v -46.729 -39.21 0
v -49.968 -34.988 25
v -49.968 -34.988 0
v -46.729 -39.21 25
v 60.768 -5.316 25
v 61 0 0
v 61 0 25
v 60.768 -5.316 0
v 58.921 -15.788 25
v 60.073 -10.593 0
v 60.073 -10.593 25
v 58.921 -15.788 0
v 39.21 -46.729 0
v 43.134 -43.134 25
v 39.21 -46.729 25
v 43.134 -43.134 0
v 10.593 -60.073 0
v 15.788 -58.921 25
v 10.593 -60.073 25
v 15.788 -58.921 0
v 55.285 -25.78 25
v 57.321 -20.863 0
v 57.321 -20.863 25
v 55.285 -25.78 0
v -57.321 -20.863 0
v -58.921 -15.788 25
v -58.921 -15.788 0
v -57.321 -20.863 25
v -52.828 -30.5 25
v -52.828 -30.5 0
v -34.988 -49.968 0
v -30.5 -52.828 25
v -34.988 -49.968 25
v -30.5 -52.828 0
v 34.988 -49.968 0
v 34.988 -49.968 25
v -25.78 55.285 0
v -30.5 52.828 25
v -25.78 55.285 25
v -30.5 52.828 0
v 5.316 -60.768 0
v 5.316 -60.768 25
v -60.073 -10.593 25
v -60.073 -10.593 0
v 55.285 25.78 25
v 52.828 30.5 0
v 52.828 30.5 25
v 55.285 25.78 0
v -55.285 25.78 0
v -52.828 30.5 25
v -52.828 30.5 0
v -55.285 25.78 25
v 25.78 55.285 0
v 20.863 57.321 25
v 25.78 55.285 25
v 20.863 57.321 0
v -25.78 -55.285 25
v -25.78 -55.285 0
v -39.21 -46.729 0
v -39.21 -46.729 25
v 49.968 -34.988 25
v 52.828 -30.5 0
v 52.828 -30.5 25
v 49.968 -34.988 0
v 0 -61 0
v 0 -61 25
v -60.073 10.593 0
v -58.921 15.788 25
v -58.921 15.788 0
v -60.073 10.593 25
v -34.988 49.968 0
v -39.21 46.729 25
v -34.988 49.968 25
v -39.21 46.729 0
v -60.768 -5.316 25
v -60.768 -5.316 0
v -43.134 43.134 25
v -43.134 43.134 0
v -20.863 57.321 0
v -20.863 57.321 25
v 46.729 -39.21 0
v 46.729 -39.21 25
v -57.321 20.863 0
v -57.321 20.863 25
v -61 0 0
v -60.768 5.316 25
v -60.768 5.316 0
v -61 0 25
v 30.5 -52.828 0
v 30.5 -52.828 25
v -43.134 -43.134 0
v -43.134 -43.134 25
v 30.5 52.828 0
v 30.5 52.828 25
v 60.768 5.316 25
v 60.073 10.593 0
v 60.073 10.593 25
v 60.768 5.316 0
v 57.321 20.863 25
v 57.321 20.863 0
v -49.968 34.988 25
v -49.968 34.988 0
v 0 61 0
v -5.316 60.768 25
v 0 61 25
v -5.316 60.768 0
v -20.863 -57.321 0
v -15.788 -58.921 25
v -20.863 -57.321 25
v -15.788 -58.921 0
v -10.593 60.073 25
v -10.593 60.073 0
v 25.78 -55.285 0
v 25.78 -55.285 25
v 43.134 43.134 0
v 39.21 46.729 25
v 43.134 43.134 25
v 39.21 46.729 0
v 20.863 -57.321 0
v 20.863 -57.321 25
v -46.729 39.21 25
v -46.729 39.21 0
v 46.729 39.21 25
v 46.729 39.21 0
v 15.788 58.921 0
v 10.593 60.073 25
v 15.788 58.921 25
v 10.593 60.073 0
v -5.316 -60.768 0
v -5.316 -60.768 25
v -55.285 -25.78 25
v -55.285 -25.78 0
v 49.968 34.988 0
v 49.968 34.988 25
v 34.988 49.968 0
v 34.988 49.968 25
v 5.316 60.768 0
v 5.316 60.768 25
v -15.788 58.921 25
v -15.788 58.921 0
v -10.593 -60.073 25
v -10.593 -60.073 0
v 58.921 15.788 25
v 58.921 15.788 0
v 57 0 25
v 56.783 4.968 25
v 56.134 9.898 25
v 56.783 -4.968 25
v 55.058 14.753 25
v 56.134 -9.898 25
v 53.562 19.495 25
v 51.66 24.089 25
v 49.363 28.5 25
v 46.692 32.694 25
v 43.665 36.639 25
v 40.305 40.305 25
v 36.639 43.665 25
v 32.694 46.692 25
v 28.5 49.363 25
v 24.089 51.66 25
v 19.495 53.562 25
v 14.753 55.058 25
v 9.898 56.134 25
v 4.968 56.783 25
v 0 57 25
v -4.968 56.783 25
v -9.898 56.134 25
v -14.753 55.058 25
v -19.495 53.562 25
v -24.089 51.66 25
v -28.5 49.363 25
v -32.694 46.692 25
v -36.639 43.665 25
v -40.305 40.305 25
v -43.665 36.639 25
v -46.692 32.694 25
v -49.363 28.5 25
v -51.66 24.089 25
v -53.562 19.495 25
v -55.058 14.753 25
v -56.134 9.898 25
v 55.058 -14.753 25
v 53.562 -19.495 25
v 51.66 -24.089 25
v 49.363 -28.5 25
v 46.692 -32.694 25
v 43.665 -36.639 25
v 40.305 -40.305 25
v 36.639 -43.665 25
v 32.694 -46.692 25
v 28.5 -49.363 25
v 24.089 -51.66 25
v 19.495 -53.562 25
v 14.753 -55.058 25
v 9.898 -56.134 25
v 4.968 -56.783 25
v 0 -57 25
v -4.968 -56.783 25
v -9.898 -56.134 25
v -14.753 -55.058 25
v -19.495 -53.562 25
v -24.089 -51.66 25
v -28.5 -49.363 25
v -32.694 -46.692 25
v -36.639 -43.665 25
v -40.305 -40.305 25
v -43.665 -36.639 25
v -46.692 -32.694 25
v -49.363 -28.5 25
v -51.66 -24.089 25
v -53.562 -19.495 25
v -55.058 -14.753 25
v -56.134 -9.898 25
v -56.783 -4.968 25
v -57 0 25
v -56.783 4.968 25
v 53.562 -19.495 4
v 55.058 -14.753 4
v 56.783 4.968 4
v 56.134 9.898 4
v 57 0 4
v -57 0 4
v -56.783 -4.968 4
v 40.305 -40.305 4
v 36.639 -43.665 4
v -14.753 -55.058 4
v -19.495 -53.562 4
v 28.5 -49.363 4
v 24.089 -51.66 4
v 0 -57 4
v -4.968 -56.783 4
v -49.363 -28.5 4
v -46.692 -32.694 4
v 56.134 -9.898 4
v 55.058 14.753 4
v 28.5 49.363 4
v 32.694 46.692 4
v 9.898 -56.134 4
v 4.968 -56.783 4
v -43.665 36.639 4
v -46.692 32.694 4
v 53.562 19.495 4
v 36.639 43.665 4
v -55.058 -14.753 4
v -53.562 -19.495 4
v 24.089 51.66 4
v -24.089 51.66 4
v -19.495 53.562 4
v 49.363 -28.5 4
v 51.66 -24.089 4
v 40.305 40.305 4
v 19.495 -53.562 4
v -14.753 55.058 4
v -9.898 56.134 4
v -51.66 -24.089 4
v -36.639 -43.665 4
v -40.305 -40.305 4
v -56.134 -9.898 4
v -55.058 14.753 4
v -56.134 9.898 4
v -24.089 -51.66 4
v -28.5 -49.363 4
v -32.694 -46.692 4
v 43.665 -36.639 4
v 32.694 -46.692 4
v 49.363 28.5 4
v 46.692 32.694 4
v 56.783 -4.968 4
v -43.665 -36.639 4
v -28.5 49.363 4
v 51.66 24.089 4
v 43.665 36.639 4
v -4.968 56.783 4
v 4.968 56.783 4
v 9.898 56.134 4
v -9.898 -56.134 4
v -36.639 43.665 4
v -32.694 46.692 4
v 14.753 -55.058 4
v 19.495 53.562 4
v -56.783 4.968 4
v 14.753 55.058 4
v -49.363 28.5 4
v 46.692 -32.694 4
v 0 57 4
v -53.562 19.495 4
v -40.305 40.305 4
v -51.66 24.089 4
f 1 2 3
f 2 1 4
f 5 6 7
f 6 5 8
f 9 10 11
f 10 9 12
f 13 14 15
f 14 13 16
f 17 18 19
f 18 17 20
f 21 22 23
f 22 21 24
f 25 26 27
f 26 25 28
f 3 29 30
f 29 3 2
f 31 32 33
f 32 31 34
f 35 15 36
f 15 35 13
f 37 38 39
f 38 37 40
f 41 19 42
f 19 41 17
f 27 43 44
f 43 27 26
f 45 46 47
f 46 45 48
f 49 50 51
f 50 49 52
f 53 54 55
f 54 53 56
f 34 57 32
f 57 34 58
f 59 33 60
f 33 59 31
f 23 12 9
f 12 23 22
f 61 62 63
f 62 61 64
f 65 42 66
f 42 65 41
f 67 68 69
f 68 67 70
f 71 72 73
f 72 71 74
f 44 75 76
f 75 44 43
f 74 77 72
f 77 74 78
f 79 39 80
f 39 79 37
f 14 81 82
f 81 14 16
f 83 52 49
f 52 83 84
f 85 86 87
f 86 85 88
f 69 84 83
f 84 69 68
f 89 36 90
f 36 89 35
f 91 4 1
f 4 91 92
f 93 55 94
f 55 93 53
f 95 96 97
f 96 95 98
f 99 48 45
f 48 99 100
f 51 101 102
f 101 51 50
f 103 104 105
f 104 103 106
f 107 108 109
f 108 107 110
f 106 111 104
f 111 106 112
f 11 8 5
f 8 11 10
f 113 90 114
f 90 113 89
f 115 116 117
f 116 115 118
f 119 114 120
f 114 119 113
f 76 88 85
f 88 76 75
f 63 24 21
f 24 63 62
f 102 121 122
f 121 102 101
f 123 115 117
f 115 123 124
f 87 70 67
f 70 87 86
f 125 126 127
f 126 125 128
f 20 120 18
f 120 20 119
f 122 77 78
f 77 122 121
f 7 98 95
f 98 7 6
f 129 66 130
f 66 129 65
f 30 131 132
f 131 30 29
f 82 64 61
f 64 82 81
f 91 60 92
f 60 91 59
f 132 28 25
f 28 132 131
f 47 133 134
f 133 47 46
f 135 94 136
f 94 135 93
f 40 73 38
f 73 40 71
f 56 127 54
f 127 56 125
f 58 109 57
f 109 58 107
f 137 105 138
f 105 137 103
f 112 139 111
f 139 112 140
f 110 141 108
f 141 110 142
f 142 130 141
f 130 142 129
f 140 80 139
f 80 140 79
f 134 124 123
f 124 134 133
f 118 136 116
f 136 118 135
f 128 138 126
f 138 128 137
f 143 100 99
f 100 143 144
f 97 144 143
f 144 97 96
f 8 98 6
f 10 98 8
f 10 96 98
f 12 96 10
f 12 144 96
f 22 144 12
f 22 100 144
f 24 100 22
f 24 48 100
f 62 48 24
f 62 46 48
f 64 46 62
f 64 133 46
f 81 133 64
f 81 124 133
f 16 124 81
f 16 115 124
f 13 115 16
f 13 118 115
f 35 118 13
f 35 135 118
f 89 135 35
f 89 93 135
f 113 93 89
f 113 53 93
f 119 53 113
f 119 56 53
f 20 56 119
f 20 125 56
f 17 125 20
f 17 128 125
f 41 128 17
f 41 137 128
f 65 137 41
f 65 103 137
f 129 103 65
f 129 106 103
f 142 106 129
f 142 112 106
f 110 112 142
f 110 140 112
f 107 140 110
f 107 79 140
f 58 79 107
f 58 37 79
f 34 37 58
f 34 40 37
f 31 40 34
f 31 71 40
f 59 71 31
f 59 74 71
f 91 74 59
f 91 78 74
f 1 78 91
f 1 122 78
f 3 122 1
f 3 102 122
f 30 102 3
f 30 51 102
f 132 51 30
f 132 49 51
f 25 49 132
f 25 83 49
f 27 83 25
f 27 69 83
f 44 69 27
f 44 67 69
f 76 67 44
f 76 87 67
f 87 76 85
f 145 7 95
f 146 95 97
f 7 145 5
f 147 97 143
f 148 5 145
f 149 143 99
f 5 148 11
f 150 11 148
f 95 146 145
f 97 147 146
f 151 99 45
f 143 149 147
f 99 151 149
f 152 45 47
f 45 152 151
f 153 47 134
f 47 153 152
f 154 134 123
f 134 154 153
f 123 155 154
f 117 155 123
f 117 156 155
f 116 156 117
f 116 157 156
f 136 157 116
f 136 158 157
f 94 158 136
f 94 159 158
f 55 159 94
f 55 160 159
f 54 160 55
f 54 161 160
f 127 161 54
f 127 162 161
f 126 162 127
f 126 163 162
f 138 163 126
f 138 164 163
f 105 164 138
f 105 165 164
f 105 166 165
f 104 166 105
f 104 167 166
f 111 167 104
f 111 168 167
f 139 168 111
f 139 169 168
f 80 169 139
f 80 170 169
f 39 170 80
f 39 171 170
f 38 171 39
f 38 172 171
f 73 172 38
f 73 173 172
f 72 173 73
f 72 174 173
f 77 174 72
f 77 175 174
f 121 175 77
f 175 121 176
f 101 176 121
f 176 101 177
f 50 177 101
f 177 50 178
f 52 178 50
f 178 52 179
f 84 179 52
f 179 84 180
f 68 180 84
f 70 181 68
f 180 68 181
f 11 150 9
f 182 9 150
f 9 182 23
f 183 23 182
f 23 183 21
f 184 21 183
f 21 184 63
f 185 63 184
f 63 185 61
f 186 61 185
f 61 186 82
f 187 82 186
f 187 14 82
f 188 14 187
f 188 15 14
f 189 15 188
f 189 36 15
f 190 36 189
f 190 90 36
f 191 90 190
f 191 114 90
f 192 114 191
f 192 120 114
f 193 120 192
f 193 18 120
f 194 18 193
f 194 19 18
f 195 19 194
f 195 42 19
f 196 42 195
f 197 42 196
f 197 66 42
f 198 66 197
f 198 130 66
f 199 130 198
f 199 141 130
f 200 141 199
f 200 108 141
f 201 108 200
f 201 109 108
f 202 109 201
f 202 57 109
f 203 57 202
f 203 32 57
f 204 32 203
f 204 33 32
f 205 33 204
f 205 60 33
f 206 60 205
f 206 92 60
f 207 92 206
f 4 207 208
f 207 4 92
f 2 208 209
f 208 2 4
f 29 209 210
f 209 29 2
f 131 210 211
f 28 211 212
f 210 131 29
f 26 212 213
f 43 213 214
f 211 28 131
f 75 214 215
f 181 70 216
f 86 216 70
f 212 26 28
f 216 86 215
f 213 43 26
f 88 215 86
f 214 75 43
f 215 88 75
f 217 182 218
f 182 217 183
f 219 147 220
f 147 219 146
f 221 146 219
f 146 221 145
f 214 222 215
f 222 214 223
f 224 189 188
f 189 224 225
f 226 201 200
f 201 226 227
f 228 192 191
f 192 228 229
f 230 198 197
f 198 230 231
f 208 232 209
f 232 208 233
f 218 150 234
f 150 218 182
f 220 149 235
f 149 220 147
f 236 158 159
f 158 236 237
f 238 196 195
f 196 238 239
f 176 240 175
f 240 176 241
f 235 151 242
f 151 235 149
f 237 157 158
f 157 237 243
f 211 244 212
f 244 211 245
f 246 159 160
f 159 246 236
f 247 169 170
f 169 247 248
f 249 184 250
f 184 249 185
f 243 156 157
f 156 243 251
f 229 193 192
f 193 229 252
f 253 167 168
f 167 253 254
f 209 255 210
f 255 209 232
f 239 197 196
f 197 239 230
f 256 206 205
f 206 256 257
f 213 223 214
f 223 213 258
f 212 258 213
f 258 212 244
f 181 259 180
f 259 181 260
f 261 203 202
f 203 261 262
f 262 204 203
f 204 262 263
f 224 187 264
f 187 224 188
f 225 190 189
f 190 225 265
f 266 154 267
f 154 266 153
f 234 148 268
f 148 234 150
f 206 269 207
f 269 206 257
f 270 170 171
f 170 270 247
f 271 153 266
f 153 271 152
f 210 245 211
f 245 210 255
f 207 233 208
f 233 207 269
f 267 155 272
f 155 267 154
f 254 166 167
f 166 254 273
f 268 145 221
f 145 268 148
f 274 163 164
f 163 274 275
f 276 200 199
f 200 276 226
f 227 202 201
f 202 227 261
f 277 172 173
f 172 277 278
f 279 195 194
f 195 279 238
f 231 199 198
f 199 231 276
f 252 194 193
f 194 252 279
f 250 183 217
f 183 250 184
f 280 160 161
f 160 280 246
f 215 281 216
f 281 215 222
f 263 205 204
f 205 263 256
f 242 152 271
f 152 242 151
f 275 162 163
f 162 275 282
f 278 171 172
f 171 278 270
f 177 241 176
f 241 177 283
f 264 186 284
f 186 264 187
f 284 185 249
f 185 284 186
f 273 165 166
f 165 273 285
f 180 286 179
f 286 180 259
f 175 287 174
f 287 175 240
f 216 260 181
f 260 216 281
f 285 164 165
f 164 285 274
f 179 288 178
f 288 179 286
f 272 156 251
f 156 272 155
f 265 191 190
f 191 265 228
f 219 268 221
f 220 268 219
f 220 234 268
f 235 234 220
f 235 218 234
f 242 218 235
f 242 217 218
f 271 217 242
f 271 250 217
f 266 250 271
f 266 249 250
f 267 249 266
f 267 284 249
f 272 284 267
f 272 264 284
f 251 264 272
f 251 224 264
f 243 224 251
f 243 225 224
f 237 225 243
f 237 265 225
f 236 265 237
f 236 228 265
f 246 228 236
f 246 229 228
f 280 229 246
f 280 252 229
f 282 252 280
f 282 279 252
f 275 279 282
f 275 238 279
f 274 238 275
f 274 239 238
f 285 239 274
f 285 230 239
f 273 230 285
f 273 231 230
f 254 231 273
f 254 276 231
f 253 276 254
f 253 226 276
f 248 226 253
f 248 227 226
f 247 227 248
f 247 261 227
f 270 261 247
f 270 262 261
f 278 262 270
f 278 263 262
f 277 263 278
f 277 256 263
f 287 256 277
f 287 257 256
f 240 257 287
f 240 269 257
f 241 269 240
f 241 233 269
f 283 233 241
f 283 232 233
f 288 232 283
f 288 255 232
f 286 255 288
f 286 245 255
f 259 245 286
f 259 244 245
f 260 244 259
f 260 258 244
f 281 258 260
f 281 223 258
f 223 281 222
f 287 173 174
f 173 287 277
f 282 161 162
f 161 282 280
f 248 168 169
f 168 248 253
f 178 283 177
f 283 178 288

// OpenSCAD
$fn=72;
difference() {
    linear_extrude(25,offset = 10, slices = 10) circle(r=61);
    translate([0,0,4]) linear_extrude(30,offset = -1, slices = 10) circle(r=57);
}
